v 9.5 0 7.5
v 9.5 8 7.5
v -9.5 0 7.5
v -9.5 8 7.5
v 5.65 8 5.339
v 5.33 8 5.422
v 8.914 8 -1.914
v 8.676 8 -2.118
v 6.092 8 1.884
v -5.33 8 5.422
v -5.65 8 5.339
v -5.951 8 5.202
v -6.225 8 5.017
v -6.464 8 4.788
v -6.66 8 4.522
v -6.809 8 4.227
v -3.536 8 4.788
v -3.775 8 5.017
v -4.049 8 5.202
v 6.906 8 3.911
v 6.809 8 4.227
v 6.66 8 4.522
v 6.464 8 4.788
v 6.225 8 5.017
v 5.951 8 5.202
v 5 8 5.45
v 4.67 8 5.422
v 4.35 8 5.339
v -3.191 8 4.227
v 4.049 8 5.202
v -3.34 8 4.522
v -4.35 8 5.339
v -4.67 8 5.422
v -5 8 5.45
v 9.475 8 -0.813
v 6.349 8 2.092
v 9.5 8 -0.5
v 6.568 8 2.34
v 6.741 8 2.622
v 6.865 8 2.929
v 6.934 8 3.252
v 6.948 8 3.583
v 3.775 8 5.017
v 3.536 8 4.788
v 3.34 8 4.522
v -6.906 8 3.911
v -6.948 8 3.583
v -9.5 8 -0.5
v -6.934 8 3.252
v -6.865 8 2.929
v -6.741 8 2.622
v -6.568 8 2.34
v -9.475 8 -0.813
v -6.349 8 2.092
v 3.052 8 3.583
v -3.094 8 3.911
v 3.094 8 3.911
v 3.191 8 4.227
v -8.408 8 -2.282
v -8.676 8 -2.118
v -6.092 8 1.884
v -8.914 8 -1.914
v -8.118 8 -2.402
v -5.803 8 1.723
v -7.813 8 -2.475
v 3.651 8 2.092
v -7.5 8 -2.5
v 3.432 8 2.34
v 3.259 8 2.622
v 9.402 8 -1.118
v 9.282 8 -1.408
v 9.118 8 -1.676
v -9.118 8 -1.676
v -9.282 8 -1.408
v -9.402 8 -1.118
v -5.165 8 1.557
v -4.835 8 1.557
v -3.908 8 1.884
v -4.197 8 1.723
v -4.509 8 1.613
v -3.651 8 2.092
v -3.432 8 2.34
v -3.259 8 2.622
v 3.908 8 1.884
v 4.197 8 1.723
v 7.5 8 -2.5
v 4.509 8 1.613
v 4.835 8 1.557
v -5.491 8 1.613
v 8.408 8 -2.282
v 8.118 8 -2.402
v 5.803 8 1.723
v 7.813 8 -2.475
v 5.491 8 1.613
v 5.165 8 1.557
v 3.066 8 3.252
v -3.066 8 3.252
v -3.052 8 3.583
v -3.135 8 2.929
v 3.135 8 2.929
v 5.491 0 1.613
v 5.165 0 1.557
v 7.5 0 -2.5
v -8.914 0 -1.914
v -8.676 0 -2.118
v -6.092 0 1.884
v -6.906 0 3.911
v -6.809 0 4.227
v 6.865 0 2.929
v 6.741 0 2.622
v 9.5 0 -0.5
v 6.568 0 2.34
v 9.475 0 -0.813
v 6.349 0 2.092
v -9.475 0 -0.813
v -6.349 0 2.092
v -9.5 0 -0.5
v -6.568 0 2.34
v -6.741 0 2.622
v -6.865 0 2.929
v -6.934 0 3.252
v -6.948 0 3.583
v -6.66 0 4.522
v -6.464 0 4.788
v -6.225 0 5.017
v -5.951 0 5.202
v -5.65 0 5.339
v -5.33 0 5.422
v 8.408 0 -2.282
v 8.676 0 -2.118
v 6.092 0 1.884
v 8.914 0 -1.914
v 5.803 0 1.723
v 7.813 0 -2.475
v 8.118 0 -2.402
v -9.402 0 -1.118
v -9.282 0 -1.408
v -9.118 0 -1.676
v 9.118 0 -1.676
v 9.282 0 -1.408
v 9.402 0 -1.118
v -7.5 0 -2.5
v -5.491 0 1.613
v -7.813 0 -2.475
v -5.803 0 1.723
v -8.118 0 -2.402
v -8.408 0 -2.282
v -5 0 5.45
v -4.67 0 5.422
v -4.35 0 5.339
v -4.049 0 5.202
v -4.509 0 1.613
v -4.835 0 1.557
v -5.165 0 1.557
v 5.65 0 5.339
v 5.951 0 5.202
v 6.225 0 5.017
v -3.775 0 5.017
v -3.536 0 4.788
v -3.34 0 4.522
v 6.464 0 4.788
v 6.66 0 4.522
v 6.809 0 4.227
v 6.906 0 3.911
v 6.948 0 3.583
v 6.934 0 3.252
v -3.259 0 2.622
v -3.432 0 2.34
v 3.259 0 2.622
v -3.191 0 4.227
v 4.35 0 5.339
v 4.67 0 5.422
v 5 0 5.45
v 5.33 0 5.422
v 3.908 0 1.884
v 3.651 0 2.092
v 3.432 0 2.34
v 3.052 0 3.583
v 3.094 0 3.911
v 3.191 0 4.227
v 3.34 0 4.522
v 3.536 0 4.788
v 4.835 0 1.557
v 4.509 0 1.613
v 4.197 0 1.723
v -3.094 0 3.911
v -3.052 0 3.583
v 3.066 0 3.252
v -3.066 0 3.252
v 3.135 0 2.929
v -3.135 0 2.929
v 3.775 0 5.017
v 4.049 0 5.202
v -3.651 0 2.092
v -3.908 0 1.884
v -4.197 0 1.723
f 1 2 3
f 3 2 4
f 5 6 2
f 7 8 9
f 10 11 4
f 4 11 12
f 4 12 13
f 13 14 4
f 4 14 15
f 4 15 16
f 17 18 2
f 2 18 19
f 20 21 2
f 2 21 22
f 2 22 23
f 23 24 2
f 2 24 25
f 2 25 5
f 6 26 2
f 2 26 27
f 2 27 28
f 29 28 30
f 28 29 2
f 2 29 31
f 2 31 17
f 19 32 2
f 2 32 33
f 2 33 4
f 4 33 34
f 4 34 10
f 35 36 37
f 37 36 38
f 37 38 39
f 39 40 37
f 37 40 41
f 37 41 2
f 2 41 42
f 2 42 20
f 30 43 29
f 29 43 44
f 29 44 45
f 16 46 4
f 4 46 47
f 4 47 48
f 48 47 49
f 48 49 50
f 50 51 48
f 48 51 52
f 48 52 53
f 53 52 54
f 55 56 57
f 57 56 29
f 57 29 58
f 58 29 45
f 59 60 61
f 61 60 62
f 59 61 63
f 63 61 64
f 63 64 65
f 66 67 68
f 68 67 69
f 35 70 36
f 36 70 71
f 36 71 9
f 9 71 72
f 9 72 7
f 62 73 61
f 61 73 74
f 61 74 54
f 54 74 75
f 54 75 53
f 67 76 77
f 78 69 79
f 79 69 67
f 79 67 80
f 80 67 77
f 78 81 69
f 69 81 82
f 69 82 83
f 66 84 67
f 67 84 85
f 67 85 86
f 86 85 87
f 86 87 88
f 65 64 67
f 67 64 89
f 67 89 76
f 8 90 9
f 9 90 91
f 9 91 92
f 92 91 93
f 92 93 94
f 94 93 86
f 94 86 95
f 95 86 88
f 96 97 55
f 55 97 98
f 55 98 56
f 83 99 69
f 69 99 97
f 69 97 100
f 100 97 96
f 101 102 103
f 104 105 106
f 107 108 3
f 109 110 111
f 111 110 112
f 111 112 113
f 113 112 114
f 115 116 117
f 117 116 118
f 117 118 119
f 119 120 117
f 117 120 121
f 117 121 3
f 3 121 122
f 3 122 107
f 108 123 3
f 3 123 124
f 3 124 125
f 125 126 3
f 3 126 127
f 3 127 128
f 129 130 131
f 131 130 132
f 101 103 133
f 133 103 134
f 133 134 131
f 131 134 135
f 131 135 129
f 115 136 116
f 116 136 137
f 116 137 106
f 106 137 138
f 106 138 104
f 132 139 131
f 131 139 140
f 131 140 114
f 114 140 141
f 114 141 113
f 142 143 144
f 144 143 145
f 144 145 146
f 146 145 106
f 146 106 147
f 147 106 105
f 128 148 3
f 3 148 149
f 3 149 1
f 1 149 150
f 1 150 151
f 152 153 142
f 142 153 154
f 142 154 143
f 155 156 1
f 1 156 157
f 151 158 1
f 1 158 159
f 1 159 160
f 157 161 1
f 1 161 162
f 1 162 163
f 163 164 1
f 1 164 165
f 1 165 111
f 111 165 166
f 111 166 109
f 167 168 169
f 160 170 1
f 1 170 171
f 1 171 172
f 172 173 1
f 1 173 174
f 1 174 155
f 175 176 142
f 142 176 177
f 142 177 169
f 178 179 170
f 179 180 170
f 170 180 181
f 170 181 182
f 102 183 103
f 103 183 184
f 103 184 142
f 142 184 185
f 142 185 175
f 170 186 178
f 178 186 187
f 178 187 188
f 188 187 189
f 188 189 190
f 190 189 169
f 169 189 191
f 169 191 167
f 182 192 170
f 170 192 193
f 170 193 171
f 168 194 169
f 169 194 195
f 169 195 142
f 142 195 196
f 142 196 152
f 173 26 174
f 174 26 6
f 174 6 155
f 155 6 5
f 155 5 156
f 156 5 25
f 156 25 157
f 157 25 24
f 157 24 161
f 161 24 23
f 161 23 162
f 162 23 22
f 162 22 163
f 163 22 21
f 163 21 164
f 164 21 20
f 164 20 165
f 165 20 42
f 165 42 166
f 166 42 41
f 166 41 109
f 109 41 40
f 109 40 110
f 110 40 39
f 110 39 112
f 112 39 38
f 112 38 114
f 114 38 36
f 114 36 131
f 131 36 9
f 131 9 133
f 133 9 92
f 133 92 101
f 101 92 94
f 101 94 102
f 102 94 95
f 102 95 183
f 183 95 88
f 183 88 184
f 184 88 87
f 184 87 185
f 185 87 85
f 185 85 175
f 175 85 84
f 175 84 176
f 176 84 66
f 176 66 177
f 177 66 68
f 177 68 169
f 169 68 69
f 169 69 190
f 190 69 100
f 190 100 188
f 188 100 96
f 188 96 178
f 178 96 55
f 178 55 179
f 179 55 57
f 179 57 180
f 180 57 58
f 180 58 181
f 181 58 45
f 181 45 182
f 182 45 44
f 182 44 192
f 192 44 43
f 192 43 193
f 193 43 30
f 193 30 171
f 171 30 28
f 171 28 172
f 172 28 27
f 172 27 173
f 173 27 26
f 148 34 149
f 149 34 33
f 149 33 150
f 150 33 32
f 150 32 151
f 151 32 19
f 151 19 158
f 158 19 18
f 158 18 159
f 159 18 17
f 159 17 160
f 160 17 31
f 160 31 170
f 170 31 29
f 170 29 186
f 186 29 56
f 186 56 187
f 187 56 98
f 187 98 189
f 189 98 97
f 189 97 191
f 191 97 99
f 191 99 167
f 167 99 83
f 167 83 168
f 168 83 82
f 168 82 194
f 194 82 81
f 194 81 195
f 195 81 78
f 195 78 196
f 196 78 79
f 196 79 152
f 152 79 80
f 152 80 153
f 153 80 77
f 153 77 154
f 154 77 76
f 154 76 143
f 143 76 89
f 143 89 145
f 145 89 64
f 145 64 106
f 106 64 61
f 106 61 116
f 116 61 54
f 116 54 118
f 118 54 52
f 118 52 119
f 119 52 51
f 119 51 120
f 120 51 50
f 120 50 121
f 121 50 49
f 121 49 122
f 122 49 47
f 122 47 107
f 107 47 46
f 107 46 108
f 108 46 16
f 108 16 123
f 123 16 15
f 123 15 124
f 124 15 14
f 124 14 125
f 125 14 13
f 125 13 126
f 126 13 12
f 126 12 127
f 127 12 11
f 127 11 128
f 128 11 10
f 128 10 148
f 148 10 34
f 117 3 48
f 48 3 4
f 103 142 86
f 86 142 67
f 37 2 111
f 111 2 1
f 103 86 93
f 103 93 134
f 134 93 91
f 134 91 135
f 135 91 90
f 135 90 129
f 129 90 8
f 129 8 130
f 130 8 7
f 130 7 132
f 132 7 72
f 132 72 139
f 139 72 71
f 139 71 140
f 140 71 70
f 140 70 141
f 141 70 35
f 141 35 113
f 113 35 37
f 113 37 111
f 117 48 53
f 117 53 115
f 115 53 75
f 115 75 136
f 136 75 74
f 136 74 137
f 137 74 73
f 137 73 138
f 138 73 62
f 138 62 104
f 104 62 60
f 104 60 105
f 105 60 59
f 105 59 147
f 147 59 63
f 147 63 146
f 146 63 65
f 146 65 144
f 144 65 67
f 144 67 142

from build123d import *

# Parameters (mm, degrees)
SKETCH_1_W           = 30
SKETCH_1_H           = 15
EXTRUDE_1_DEPTH      = 8
FILLET_1_R           = 6
SKETCH_2_R           = 1.95
CUT_EXTRUDE_1_DEPTH  = 19.580904176
SKETCH_3_OUTSIDE_W   = 38.896
SKETCH_3_OUTSIDE_H   = 23.896
SKETCH_3_OUTSIDE_W_2 = 19
SKETCH_3_OUTSIDE_H_2 = 10
CUT_EXTRUDE_3_DEPTH  = 10
FILLET_3_R           = 2


with BuildPart() as part:
    # Эскиз1 → Бобышка-Вытянуть1 (new body)
    with BuildSketch(Plane(origin=(0, 0, 0), x_dir=(1, 0, 0), z_dir=(0, 1, 0))):
        Rectangle(SKETCH_1_W, SKETCH_1_H)
    extrude(amount=EXTRUDE_1_DEPTH)

    # Скругление1
    fillet_1_edges = [part.edges().sort_by_distance(p)[0] for p in [
        (-15, 4, -7.5),
        (15, 4, -7.5),
    ]]
    fillet(fillet_1_edges, radius=FILLET_1_R)

    # Эскиз2 → Вырез-Вытянуть1 (cut, through all)
    with BuildSketch(Plane(origin=(0, 8, 0), x_dir=(1, 0, 0), z_dir=(0, 1, 0))):
        with Locations(Location((-5, -3.5, 0), (0, 0, 270))):
            Circle(SKETCH_2_R)
        with Locations(Location((5, -3.5, 0), (0, 0, 270))):
            Circle(SKETCH_2_R)
    extrude(amount=-CUT_EXTRUDE_1_DEPTH, mode=Mode.SUBTRACT)

    # Эскиз3 outside → Вырез-Вытянуть3 (cut)
    with BuildSketch(Plane(origin=(0, 8, 0), x_dir=(1, 0, 0), z_dir=(0, 1, 0))):
        Rectangle(SKETCH_3_OUTSIDE_W, SKETCH_3_OUTSIDE_H)
        with Locations((0, -2.5)):
            Rectangle(SKETCH_3_OUTSIDE_W_2, SKETCH_3_OUTSIDE_H_2, mode=Mode.SUBTRACT)
    extrude(amount=-CUT_EXTRUDE_3_DEPTH, mode=Mode.SUBTRACT)

    # Скругление3
    fillet_3_edges = [part.edges().sort_by_distance(p)[0] for p in [
        (-9.5, 4, -2.5),
        (9.5, 4, -2.5),
    ]]
    fillet(fillet_3_edges, radius=FILLET_3_R)


solid = part.part
